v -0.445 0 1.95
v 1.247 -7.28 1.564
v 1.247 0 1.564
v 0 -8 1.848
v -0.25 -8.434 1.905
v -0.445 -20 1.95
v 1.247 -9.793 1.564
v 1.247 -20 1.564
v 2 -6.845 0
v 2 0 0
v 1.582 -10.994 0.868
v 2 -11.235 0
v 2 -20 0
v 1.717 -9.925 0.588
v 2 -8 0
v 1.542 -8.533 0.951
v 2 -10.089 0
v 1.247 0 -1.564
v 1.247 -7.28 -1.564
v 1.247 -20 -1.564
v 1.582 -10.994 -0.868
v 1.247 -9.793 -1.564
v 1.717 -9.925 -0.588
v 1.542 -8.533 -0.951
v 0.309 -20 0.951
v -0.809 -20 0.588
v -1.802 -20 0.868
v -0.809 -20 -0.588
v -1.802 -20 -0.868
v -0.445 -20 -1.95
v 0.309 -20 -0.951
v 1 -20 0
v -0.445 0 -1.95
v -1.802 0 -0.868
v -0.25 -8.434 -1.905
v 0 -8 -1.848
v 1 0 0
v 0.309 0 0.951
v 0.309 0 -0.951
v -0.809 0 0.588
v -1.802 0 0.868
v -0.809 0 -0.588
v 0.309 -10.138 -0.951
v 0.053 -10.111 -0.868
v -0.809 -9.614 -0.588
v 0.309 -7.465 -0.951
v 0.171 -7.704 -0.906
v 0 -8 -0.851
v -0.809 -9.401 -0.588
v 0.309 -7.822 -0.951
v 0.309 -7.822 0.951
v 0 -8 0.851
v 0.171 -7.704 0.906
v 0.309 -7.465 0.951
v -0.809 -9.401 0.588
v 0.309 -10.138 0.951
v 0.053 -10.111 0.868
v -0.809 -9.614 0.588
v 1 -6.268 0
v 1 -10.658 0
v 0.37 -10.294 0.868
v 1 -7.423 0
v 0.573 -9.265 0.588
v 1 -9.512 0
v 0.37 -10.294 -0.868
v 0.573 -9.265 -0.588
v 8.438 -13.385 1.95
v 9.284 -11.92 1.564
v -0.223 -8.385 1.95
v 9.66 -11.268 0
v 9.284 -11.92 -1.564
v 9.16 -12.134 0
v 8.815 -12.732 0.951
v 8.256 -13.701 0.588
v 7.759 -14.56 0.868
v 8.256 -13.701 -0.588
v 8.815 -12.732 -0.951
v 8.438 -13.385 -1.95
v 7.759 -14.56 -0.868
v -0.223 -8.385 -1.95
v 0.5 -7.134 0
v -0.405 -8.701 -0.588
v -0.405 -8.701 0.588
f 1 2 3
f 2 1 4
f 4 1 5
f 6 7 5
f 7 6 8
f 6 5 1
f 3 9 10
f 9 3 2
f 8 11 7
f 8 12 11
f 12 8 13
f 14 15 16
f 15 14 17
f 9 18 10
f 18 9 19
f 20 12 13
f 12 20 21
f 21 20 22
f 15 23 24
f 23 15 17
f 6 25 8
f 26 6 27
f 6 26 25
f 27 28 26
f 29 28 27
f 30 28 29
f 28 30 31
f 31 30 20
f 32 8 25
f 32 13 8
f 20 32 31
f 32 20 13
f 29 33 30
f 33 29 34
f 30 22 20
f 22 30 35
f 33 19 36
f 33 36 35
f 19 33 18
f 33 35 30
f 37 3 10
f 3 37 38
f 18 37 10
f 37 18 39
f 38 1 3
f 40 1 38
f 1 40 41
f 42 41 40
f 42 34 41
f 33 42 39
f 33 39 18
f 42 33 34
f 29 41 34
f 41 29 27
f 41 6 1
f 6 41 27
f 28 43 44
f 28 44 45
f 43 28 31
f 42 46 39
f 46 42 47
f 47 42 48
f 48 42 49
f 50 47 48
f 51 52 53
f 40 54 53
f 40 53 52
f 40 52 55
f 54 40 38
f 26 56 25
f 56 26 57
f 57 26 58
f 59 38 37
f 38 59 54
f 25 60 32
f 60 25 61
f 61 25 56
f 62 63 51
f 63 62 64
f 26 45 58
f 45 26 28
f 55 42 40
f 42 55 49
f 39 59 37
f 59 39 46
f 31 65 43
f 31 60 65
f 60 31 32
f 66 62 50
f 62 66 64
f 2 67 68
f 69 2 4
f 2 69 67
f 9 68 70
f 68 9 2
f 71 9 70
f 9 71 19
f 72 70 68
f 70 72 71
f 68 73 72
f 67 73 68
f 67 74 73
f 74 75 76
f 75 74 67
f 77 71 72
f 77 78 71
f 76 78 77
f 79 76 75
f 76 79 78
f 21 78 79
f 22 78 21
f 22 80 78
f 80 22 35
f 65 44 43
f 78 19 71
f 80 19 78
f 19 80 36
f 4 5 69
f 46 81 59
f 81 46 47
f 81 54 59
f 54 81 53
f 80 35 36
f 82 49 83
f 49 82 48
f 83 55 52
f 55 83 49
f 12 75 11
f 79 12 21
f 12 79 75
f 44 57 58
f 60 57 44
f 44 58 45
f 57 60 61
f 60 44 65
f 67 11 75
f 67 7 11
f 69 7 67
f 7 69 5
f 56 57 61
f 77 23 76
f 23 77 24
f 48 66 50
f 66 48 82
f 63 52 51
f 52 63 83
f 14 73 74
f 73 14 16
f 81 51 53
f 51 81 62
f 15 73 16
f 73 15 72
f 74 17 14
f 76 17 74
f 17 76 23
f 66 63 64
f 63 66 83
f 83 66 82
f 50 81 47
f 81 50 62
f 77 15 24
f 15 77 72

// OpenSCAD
module pin() {
    difference() {
        cylinder(10,d=4);
        cylinder(10,d=2);
    }
}

module tube() {
    difference() {
        cylinder(20,d=4);
        cylinder(20,d=2);
    }
}

rotate([90,0,0]) tube();

translate([0,-8,0]) rotate([90,0,60]) pin();
